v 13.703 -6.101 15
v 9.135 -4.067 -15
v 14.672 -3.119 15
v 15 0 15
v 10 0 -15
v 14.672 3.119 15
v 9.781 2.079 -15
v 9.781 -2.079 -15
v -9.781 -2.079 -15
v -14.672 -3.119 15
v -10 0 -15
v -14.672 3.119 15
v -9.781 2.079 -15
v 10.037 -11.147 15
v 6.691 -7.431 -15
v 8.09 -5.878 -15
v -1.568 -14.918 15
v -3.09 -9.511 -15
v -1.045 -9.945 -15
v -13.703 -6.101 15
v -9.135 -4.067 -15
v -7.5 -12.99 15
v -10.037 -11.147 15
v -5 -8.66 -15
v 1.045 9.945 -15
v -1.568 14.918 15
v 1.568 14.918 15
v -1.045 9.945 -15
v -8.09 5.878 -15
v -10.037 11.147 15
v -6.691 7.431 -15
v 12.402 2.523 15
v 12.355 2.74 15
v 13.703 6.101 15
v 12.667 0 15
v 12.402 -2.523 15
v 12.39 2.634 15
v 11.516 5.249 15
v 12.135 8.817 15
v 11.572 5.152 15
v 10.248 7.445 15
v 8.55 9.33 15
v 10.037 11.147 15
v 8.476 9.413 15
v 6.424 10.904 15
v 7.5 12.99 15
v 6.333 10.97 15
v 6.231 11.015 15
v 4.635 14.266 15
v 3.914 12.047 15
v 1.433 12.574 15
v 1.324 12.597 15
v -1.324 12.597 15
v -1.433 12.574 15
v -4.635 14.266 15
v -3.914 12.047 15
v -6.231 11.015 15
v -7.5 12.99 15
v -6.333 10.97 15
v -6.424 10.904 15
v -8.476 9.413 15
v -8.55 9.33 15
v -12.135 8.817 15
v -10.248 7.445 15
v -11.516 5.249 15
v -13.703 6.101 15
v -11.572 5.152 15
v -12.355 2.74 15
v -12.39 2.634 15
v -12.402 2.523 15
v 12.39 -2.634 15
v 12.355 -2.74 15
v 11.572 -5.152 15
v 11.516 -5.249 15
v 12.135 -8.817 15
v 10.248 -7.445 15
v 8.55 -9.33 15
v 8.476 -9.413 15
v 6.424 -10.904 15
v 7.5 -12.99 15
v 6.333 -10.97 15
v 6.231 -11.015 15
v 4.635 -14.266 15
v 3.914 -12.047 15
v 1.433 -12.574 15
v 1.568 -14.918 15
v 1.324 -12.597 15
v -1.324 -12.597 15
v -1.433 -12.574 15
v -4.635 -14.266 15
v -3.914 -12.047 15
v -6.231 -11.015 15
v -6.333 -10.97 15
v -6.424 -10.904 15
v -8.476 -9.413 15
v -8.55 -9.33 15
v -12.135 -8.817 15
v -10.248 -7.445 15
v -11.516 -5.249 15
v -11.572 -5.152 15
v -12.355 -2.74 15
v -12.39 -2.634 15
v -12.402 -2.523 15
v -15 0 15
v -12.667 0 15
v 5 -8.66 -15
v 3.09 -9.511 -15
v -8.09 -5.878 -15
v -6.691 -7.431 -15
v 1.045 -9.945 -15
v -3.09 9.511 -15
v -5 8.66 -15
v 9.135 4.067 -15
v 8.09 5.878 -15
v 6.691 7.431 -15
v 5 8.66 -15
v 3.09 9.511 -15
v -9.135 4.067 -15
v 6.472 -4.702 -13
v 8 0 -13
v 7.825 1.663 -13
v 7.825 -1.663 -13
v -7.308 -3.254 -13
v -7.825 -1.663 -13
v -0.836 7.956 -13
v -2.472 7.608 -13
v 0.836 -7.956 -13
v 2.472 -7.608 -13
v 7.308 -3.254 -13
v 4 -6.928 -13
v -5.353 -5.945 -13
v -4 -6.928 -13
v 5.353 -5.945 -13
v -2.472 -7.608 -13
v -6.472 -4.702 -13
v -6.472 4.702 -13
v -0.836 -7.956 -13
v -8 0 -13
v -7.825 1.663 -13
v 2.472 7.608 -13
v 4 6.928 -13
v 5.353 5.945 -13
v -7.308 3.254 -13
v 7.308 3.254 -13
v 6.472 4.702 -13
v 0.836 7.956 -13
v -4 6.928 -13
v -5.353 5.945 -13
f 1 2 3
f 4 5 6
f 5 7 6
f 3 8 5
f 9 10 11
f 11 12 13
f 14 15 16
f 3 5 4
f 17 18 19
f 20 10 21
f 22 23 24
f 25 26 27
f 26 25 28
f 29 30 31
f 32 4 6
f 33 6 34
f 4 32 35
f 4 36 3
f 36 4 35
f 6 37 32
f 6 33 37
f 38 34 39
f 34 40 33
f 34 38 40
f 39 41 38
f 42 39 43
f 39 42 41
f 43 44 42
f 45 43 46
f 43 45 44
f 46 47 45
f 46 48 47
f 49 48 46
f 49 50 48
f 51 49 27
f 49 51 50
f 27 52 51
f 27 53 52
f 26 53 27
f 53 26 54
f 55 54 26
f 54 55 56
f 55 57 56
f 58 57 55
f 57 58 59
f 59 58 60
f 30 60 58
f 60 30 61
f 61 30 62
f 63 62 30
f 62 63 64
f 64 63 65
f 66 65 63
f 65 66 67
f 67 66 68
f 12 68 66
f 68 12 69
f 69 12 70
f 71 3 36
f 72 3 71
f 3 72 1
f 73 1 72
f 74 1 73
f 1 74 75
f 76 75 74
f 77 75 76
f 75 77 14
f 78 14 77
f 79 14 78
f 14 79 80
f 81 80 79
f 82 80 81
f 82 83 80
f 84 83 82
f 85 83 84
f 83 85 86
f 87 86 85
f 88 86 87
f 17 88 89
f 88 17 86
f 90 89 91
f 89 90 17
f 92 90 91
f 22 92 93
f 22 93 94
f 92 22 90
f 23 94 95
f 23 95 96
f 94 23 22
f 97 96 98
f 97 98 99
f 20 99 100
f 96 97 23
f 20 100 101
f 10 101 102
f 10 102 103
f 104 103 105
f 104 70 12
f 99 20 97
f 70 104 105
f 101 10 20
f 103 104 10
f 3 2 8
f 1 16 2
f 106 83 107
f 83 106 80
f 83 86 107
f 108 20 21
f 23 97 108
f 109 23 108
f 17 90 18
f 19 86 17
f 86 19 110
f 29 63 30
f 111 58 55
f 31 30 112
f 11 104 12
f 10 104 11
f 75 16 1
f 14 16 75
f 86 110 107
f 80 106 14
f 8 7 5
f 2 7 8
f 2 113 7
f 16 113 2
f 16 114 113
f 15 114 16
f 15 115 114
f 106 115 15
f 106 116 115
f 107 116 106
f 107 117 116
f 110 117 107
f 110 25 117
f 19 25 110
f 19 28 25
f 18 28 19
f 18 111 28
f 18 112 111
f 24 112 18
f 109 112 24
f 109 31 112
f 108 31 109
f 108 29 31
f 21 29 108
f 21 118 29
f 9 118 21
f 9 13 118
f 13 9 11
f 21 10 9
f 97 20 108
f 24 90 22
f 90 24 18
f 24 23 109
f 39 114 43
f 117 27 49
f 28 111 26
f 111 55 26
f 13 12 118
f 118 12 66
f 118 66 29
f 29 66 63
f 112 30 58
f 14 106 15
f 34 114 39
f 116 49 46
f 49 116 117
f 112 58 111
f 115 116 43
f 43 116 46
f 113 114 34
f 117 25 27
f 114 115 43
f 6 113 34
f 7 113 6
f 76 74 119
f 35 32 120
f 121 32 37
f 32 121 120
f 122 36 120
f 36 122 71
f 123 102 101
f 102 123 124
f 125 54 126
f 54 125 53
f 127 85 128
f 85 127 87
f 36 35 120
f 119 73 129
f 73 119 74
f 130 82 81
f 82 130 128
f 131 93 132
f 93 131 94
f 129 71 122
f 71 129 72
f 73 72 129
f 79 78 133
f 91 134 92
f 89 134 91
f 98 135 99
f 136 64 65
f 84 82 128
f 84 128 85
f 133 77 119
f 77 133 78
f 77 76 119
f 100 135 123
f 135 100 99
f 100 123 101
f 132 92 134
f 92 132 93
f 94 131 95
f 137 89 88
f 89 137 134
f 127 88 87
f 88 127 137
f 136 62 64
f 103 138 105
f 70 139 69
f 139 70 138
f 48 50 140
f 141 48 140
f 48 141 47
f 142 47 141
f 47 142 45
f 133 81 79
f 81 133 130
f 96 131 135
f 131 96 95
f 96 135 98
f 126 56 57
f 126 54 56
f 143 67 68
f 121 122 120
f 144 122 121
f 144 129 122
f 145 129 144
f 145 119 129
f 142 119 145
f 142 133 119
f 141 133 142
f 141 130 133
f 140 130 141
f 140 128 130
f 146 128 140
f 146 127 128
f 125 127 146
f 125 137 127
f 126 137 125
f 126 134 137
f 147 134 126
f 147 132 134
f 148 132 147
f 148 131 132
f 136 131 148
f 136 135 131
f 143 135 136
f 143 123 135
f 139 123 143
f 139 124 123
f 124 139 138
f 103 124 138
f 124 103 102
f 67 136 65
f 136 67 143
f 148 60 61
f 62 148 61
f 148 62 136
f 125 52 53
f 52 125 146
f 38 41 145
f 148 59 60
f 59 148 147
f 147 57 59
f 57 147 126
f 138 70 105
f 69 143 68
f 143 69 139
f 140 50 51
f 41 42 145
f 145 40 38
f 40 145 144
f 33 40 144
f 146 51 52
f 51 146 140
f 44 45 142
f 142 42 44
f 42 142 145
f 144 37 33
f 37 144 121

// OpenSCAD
difference() {
    cylinder(h = 30, r1 = 10, r2 = 15, center = true);
    translate([0, 0, 2])
cylinder(h = 30, r1 = 8, r2 = 13, center = true);

}
